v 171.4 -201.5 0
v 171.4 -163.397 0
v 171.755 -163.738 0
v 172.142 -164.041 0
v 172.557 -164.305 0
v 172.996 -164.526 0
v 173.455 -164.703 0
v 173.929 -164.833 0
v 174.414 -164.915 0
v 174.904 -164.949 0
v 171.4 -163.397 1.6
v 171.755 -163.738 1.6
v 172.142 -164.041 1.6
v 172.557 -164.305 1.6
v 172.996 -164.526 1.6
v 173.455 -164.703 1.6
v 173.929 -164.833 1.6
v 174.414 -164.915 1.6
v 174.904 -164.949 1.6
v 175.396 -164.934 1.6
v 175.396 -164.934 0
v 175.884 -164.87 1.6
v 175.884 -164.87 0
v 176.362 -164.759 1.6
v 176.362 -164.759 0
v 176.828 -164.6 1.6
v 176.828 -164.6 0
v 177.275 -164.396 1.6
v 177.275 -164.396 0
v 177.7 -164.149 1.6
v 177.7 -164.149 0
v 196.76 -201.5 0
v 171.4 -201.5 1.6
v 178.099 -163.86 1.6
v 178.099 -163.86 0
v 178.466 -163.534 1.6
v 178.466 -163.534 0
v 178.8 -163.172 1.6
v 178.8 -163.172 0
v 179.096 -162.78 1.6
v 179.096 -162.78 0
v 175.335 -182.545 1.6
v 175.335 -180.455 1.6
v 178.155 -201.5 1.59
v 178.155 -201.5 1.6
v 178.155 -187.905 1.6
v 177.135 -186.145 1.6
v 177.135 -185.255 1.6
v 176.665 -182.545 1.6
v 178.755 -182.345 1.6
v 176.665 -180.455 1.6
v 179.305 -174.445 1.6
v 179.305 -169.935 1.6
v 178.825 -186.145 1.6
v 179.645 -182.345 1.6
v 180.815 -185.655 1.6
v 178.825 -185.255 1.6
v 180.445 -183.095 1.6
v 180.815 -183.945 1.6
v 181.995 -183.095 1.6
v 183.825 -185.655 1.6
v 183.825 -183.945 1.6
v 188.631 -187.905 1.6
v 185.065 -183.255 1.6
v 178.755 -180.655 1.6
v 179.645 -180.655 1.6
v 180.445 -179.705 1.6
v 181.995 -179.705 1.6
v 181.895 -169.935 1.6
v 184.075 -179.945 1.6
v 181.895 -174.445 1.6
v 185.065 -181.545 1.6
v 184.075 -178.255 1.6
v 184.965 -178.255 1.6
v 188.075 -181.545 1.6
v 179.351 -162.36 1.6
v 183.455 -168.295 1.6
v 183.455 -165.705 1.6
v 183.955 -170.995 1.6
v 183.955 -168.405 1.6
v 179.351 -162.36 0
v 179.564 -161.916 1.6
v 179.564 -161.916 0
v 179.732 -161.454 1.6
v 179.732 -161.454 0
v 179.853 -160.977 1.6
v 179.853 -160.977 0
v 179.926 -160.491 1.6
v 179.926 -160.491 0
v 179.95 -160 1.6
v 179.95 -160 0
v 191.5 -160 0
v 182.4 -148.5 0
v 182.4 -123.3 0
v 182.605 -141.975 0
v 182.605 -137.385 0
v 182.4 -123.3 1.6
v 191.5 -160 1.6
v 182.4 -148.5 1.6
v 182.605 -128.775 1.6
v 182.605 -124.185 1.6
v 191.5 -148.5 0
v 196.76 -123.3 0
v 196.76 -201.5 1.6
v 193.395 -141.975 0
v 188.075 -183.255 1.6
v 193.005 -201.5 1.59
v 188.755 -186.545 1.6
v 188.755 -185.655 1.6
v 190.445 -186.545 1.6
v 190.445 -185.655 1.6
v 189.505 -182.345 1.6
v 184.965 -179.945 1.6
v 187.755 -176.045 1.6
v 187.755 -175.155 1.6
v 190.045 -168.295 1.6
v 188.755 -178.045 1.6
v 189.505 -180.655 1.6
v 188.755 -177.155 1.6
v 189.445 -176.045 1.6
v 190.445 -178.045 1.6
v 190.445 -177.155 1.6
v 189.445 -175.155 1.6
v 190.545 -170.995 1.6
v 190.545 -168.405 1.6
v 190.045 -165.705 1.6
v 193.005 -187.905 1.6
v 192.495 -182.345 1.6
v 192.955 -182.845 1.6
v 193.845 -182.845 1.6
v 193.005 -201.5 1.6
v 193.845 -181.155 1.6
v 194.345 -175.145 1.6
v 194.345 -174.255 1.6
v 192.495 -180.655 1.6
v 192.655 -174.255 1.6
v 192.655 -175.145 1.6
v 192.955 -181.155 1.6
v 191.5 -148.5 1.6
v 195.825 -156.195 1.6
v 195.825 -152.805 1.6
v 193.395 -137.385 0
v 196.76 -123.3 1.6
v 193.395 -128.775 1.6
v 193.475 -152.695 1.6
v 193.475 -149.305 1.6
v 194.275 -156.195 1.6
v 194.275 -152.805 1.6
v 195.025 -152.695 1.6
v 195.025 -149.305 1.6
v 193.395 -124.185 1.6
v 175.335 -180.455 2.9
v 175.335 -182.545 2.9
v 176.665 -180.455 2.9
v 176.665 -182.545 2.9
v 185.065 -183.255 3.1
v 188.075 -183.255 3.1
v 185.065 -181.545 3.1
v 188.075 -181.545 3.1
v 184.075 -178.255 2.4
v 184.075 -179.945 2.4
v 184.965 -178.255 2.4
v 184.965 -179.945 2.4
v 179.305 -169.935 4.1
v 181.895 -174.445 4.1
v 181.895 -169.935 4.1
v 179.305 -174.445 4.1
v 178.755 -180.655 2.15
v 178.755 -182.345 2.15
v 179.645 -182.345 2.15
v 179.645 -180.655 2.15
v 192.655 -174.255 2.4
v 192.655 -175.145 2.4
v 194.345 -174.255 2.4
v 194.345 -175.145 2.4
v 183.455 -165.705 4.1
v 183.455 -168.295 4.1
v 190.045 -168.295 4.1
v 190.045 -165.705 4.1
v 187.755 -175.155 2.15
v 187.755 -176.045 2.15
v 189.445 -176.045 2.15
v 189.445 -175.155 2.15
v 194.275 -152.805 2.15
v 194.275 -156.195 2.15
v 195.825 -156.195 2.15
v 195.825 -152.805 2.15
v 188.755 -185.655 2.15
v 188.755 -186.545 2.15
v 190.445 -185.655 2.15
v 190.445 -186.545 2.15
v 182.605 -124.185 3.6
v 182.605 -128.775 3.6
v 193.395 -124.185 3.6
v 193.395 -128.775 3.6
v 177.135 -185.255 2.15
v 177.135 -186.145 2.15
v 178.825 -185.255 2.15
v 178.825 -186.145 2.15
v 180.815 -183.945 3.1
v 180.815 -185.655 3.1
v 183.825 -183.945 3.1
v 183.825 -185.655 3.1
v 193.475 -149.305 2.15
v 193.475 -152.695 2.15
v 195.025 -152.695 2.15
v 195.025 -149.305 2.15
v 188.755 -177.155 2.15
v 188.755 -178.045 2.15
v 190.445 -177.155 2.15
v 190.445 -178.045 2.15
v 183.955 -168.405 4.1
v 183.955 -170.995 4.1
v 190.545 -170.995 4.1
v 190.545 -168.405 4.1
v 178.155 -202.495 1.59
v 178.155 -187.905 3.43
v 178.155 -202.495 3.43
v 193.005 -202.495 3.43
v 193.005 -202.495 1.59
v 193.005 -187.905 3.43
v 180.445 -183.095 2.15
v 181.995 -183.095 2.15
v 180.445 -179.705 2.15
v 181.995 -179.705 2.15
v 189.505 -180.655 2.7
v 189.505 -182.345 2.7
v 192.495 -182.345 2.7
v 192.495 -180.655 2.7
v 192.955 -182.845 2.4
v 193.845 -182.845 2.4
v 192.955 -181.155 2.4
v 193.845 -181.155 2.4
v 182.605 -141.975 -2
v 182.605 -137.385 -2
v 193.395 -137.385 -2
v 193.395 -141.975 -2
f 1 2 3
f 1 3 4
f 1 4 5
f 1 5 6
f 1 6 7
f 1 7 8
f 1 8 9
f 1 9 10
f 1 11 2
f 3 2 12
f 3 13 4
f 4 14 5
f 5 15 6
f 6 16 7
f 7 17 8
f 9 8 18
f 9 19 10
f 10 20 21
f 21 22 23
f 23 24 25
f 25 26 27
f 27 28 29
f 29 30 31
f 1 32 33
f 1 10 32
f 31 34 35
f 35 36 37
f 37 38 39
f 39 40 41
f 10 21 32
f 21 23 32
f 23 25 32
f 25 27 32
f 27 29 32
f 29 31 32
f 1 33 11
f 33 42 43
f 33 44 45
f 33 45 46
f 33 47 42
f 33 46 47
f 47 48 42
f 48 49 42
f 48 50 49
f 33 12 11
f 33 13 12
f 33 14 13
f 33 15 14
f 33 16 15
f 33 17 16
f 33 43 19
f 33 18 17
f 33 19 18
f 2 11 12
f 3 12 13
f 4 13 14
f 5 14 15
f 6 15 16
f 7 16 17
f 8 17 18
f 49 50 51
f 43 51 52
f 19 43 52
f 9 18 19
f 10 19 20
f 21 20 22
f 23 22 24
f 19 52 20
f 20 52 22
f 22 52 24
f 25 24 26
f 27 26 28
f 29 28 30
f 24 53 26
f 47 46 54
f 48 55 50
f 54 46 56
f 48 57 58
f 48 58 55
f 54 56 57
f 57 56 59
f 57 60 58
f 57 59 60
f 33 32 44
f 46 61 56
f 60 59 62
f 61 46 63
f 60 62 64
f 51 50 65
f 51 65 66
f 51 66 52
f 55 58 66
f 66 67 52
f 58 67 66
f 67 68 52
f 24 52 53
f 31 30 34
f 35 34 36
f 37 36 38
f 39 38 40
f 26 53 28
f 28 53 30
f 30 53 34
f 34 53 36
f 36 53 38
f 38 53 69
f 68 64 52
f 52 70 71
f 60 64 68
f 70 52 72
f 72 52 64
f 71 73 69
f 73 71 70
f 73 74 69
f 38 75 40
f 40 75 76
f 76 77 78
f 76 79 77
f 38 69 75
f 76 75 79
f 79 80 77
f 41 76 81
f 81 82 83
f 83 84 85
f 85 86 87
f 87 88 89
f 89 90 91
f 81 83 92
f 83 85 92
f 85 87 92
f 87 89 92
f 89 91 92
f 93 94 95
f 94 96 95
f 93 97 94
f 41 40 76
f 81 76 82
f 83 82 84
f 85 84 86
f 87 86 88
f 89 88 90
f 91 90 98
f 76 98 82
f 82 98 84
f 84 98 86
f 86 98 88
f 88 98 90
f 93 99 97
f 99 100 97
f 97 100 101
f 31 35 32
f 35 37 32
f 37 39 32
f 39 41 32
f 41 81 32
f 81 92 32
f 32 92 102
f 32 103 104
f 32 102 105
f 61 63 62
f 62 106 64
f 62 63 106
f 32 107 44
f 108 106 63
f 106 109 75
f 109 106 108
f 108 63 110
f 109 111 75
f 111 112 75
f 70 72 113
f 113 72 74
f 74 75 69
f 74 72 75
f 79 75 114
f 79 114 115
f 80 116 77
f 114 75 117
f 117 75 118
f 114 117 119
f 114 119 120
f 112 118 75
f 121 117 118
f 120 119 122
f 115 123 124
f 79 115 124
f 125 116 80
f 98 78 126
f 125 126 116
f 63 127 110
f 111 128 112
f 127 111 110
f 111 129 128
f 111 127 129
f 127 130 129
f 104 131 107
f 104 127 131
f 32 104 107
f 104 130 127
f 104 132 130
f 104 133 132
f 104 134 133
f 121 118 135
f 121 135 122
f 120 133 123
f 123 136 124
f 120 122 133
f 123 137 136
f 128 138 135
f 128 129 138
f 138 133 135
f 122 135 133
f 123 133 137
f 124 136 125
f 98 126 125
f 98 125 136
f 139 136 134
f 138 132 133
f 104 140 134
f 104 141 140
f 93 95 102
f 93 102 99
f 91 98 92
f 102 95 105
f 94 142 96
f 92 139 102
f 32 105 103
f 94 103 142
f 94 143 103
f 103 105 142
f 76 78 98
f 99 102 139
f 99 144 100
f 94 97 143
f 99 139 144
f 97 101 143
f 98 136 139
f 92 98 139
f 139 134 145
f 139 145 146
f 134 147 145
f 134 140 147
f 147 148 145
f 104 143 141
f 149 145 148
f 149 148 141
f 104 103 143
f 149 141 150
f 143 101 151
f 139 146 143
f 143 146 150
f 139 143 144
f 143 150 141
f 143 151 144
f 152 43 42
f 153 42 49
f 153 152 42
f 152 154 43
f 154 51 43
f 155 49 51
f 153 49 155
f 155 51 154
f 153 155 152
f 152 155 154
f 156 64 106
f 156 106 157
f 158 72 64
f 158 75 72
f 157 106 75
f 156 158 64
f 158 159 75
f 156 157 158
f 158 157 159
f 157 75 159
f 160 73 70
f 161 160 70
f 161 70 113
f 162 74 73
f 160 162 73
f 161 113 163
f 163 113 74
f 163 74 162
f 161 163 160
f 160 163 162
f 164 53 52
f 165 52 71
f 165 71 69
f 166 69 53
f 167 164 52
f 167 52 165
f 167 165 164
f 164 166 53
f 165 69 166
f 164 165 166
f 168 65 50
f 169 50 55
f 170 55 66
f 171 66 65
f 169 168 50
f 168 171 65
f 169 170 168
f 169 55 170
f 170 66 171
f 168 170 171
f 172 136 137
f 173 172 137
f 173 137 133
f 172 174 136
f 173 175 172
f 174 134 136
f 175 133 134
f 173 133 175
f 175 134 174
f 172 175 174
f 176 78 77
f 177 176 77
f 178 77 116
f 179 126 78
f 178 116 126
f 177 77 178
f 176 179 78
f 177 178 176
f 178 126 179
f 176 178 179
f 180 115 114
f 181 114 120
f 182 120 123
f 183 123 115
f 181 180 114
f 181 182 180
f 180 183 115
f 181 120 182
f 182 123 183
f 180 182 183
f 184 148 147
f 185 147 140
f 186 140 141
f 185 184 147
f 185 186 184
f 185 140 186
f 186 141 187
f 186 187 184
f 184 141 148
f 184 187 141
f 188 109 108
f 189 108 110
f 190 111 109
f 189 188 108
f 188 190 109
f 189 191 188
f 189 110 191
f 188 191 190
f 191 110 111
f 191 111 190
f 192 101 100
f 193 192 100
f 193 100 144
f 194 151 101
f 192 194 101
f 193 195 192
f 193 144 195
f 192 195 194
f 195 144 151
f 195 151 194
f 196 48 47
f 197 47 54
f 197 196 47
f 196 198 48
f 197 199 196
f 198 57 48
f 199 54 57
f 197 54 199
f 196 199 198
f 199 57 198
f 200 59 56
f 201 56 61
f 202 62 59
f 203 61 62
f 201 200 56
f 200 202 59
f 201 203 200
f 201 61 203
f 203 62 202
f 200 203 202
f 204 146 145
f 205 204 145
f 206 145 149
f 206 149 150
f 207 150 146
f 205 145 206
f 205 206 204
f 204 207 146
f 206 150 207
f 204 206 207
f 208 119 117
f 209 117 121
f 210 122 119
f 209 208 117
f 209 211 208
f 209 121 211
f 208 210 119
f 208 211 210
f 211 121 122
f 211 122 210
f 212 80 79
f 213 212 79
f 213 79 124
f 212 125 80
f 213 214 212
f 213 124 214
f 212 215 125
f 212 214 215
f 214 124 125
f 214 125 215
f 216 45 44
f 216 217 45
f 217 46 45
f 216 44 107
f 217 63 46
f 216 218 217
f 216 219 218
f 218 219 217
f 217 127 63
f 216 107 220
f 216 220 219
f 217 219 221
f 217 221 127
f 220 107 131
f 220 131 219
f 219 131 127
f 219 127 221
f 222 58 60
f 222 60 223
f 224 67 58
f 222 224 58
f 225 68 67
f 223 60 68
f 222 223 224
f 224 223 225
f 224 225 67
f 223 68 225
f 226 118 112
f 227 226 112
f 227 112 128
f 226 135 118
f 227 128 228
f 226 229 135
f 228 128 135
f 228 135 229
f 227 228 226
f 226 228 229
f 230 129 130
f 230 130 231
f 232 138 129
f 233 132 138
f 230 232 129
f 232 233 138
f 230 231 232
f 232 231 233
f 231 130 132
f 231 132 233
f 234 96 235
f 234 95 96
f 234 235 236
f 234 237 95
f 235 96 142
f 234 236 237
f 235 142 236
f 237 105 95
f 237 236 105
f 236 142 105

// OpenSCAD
// generated by make_mockup.py: the short SD board's outline and its parts as blocks
union() {
  linear_extrude(1.6) polygon([[196.76, -201.5], [171.4, -201.5], [171.4, -163.397], [171.755, -163.738], [172.142, -164.041], [172.557, -164.305], [172.996, -164.526], [173.455, -164.703], [173.929, -164.833], [174.414, -164.915], [174.904, -164.949], [175.396, -164.934], [175.884, -164.87], [176.362, -164.759], [176.828, -164.6], [177.275, -164.396], [177.7, -164.149], [178.099, -163.86], [178.466, -163.534], [178.8, -163.172], [179.096, -162.78], [179.351, -162.36], [179.564, -161.916], [179.732, -161.454], [179.853, -160.977], [179.926, -160.491], [179.95, -160.0], [191.5, -160.0], [191.5, -148.5], [182.4, -148.5], [182.4, -123.3], [196.76, -123.3]]);
  translate([175.335, -182.545, 1.590]) cube([1.330, 2.090, 1.31]);  // C1
  translate([185.065, -183.255, 1.590]) cube([3.010, 1.710, 1.51]);  // U2
  translate([184.075, -179.945, 1.590]) cube([0.890, 1.690, 0.81]);  // C3
  translate([179.305, -174.445, 1.590]) cube([2.590, 4.510, 2.51]);  // RT1
  translate([178.755, -182.345, 1.590]) cube([0.890, 1.690, 0.56]);  // R7
  translate([192.655, -175.145, 1.590]) cube([1.690, 0.890, 0.81]);  // FB1
  translate([183.455, -168.295, 1.590]) cube([6.590, 2.590, 2.51]);  // RT5
  translate([187.755, -176.045, 1.590]) cube([1.690, 0.890, 0.56]);  // R8
  translate([194.275, -156.195, 1.590]) cube([1.550, 3.390, 0.56]);  // R6
  translate([188.755, -186.545, 1.590]) cube([1.690, 0.890, 0.56]);  // R2
  translate([182.605, -128.775, 1.590]) cube([10.790, 4.590, 2.01]);  // J3
  translate([177.135, -186.145, 1.590]) cube([1.690, 0.890, 0.56]);  // R3
  translate([180.815, -185.655, 1.590]) cube([3.010, 1.710, 1.51]);  // U3
  translate([193.475, -152.695, 1.590]) cube([1.550, 3.390, 0.56]);  // R5
  translate([188.755, -178.045, 1.590]) cube([1.690, 0.890, 0.56]);  // R4
  translate([183.955, -170.995, 1.590]) cube([6.590, 2.590, 2.51]);  // RT6
  translate([178.155, -202.495, 1.590]) cube([14.850, 14.590, 1.84]);  // J1
  translate([180.445, -183.095, 1.590]) cube([1.550, 3.390, 0.56]);  // R1
  translate([189.505, -182.345, 1.590]) cube([2.990, 1.690, 1.11]);  // U1
  translate([192.955, -182.845, 1.590]) cube([0.890, 1.690, 0.81]);  // C2
  translate([182.605, -141.975, -2.000]) cube([10.790, 4.590, 2.01]);  // J2
}
